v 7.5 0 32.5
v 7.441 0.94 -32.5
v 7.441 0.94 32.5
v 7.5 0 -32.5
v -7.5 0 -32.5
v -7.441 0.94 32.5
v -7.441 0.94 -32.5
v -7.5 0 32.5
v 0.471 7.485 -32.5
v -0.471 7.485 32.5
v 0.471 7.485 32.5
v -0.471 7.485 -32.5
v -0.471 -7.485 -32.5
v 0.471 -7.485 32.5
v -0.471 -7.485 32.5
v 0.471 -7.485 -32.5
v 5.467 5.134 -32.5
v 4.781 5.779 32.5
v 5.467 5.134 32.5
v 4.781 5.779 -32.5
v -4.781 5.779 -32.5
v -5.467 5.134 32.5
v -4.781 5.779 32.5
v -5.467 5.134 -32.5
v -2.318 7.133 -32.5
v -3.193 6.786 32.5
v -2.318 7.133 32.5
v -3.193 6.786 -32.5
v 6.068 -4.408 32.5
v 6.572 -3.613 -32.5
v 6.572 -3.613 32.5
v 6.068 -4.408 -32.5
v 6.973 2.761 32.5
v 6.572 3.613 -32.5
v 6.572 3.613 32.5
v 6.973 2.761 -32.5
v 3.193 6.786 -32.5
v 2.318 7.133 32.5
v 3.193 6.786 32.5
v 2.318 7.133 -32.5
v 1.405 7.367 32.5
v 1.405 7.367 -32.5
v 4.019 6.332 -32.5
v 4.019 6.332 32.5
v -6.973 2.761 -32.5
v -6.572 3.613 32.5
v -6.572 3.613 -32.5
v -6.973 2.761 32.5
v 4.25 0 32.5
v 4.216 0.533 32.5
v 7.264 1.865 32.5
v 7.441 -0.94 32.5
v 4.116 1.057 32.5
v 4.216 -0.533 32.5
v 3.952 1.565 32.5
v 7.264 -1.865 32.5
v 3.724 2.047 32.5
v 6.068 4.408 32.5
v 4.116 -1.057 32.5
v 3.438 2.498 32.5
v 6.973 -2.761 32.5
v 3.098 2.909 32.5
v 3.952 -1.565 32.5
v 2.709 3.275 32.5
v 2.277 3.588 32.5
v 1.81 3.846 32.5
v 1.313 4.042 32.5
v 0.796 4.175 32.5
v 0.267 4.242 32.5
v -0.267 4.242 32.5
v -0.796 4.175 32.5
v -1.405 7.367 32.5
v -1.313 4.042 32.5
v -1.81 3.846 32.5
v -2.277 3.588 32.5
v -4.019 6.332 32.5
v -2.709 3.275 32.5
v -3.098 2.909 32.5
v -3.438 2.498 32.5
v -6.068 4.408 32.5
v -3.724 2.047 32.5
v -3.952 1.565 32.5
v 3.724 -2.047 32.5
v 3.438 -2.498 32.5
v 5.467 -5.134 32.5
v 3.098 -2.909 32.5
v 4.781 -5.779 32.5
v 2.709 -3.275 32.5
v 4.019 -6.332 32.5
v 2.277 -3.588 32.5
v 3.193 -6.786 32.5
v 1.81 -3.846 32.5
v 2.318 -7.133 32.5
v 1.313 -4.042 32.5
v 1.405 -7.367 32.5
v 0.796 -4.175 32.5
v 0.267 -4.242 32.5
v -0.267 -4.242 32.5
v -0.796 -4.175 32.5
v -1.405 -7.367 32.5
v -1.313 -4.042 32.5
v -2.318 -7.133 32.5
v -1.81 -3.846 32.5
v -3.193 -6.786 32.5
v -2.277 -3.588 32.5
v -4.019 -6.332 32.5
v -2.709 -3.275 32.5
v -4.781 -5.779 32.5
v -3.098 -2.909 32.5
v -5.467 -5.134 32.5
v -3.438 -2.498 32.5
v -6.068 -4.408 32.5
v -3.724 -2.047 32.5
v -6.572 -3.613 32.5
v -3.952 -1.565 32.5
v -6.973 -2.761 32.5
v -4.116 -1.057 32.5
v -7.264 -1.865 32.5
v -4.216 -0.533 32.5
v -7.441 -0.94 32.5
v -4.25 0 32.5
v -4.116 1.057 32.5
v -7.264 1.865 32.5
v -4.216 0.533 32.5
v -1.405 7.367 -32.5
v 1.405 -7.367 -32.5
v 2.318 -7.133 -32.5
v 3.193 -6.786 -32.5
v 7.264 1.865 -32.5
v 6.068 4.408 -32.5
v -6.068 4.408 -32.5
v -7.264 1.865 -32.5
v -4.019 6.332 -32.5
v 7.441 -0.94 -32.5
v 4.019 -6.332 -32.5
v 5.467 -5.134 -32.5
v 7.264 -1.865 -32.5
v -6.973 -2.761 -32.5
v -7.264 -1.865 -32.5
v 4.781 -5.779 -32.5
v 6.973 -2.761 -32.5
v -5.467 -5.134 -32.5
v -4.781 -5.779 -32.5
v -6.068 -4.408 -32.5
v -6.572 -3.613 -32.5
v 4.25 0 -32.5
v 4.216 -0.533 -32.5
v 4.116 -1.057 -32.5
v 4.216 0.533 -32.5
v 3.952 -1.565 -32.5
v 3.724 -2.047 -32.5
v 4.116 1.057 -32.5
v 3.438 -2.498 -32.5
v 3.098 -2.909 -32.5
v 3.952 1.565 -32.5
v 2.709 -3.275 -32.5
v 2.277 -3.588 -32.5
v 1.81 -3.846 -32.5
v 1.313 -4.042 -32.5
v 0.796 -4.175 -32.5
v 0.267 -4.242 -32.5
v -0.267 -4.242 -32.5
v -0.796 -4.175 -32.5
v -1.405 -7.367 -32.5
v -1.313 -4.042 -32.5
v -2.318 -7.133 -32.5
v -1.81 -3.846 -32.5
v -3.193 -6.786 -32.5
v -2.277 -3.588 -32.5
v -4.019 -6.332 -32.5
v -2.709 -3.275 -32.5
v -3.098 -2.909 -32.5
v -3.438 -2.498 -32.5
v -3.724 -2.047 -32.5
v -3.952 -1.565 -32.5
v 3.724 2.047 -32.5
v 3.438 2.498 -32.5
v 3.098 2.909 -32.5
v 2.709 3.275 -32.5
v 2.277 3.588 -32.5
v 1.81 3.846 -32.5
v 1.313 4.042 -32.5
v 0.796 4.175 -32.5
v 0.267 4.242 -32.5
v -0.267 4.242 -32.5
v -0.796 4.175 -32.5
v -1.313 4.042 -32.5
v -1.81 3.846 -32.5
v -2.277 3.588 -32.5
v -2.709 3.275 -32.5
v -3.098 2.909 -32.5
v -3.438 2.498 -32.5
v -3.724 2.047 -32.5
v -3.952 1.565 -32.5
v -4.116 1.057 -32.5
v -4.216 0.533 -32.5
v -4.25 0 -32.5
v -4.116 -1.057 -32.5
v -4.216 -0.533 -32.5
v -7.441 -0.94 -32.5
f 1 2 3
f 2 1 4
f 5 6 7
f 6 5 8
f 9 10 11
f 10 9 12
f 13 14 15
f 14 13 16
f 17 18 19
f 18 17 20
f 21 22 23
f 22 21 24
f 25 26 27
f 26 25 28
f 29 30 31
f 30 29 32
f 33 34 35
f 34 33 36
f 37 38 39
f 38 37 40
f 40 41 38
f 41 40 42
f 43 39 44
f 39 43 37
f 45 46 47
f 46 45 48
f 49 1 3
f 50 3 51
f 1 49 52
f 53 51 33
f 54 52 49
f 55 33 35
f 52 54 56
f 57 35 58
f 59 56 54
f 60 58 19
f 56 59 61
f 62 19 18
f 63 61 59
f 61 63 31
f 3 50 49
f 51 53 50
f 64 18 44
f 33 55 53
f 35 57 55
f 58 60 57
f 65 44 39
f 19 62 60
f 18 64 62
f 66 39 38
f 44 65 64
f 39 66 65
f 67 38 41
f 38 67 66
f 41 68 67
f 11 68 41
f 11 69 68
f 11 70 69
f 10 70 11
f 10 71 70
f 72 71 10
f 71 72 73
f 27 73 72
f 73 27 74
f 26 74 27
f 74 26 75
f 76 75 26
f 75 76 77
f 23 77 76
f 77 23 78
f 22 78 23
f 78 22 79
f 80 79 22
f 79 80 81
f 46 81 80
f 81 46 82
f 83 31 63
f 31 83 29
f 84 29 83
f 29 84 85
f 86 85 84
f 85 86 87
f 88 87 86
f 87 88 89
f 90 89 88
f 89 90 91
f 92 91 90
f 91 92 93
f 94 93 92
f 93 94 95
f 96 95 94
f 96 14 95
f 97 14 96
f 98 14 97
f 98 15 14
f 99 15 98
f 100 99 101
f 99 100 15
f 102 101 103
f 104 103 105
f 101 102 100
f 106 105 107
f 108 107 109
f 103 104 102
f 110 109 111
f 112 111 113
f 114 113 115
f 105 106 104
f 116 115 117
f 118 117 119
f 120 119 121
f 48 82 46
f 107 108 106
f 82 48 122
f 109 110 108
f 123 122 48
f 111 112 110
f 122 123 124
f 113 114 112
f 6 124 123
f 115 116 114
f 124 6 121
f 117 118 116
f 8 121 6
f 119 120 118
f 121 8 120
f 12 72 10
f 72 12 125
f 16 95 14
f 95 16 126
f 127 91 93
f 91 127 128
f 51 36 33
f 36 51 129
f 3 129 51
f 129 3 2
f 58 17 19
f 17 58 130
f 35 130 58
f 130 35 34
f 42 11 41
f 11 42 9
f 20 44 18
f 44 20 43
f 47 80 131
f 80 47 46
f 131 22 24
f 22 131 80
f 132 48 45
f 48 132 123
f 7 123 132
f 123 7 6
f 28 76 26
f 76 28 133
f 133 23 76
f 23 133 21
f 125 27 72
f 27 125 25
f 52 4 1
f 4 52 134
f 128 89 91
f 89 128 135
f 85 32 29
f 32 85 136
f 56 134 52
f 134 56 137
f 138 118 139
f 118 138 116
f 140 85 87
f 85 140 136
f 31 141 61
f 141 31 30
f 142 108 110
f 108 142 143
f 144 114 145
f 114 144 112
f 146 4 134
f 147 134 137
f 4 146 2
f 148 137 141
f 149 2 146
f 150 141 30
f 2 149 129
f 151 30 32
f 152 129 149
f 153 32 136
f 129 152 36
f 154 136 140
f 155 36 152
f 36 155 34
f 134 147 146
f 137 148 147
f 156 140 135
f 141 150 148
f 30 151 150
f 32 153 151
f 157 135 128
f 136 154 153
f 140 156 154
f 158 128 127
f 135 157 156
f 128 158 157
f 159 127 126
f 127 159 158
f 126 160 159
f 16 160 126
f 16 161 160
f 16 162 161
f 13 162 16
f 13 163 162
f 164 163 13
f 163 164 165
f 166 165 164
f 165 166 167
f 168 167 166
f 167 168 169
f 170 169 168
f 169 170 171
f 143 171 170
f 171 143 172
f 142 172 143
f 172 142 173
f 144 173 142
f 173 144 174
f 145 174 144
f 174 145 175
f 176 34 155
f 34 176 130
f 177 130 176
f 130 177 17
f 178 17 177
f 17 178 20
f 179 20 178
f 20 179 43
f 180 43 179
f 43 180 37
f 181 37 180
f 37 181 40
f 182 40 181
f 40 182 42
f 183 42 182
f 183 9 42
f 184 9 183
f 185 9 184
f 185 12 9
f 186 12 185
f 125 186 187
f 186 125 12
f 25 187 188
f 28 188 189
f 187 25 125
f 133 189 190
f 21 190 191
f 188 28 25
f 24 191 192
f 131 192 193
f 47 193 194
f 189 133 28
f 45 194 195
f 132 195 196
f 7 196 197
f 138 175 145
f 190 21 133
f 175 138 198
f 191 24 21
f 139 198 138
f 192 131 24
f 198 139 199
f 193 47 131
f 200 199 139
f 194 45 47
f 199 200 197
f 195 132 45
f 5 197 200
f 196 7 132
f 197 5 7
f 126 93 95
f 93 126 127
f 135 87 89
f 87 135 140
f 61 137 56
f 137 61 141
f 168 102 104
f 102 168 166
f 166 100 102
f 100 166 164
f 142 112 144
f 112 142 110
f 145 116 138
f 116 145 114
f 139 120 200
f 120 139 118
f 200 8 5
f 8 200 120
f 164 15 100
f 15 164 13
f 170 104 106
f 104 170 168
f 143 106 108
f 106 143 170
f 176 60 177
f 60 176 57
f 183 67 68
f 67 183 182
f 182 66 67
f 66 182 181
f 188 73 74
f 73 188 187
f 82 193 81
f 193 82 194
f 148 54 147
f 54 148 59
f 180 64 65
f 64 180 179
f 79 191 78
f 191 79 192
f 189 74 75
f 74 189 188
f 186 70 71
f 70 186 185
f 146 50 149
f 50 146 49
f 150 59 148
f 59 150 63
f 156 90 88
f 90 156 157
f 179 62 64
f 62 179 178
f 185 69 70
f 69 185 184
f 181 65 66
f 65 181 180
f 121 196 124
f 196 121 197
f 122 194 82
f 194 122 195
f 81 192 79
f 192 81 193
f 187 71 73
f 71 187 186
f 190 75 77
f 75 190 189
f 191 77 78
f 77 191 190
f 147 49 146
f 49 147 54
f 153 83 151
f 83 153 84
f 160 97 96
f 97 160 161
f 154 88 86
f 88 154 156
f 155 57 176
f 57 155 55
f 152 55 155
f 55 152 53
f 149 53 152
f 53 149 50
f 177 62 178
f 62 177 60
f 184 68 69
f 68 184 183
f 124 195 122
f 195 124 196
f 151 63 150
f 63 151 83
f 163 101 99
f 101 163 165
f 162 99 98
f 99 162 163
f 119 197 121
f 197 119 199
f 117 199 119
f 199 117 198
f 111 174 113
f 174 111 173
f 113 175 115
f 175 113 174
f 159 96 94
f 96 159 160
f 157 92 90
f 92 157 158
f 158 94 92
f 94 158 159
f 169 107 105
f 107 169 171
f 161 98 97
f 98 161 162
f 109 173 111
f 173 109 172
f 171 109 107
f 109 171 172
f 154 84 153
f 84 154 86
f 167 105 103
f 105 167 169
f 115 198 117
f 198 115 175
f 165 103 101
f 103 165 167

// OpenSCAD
$fn = 50;


difference() {
	union() {
		translate(v = [0, 0, -32.5000000000]) {
			cylinder(h = 65, r = 7.5000000000);
		}
	}
	union() {
		translate(v = [0, 0, -100.0000000000]) {
			cylinder(h = 200, r = 4.2500000000);
		}
	}
}
